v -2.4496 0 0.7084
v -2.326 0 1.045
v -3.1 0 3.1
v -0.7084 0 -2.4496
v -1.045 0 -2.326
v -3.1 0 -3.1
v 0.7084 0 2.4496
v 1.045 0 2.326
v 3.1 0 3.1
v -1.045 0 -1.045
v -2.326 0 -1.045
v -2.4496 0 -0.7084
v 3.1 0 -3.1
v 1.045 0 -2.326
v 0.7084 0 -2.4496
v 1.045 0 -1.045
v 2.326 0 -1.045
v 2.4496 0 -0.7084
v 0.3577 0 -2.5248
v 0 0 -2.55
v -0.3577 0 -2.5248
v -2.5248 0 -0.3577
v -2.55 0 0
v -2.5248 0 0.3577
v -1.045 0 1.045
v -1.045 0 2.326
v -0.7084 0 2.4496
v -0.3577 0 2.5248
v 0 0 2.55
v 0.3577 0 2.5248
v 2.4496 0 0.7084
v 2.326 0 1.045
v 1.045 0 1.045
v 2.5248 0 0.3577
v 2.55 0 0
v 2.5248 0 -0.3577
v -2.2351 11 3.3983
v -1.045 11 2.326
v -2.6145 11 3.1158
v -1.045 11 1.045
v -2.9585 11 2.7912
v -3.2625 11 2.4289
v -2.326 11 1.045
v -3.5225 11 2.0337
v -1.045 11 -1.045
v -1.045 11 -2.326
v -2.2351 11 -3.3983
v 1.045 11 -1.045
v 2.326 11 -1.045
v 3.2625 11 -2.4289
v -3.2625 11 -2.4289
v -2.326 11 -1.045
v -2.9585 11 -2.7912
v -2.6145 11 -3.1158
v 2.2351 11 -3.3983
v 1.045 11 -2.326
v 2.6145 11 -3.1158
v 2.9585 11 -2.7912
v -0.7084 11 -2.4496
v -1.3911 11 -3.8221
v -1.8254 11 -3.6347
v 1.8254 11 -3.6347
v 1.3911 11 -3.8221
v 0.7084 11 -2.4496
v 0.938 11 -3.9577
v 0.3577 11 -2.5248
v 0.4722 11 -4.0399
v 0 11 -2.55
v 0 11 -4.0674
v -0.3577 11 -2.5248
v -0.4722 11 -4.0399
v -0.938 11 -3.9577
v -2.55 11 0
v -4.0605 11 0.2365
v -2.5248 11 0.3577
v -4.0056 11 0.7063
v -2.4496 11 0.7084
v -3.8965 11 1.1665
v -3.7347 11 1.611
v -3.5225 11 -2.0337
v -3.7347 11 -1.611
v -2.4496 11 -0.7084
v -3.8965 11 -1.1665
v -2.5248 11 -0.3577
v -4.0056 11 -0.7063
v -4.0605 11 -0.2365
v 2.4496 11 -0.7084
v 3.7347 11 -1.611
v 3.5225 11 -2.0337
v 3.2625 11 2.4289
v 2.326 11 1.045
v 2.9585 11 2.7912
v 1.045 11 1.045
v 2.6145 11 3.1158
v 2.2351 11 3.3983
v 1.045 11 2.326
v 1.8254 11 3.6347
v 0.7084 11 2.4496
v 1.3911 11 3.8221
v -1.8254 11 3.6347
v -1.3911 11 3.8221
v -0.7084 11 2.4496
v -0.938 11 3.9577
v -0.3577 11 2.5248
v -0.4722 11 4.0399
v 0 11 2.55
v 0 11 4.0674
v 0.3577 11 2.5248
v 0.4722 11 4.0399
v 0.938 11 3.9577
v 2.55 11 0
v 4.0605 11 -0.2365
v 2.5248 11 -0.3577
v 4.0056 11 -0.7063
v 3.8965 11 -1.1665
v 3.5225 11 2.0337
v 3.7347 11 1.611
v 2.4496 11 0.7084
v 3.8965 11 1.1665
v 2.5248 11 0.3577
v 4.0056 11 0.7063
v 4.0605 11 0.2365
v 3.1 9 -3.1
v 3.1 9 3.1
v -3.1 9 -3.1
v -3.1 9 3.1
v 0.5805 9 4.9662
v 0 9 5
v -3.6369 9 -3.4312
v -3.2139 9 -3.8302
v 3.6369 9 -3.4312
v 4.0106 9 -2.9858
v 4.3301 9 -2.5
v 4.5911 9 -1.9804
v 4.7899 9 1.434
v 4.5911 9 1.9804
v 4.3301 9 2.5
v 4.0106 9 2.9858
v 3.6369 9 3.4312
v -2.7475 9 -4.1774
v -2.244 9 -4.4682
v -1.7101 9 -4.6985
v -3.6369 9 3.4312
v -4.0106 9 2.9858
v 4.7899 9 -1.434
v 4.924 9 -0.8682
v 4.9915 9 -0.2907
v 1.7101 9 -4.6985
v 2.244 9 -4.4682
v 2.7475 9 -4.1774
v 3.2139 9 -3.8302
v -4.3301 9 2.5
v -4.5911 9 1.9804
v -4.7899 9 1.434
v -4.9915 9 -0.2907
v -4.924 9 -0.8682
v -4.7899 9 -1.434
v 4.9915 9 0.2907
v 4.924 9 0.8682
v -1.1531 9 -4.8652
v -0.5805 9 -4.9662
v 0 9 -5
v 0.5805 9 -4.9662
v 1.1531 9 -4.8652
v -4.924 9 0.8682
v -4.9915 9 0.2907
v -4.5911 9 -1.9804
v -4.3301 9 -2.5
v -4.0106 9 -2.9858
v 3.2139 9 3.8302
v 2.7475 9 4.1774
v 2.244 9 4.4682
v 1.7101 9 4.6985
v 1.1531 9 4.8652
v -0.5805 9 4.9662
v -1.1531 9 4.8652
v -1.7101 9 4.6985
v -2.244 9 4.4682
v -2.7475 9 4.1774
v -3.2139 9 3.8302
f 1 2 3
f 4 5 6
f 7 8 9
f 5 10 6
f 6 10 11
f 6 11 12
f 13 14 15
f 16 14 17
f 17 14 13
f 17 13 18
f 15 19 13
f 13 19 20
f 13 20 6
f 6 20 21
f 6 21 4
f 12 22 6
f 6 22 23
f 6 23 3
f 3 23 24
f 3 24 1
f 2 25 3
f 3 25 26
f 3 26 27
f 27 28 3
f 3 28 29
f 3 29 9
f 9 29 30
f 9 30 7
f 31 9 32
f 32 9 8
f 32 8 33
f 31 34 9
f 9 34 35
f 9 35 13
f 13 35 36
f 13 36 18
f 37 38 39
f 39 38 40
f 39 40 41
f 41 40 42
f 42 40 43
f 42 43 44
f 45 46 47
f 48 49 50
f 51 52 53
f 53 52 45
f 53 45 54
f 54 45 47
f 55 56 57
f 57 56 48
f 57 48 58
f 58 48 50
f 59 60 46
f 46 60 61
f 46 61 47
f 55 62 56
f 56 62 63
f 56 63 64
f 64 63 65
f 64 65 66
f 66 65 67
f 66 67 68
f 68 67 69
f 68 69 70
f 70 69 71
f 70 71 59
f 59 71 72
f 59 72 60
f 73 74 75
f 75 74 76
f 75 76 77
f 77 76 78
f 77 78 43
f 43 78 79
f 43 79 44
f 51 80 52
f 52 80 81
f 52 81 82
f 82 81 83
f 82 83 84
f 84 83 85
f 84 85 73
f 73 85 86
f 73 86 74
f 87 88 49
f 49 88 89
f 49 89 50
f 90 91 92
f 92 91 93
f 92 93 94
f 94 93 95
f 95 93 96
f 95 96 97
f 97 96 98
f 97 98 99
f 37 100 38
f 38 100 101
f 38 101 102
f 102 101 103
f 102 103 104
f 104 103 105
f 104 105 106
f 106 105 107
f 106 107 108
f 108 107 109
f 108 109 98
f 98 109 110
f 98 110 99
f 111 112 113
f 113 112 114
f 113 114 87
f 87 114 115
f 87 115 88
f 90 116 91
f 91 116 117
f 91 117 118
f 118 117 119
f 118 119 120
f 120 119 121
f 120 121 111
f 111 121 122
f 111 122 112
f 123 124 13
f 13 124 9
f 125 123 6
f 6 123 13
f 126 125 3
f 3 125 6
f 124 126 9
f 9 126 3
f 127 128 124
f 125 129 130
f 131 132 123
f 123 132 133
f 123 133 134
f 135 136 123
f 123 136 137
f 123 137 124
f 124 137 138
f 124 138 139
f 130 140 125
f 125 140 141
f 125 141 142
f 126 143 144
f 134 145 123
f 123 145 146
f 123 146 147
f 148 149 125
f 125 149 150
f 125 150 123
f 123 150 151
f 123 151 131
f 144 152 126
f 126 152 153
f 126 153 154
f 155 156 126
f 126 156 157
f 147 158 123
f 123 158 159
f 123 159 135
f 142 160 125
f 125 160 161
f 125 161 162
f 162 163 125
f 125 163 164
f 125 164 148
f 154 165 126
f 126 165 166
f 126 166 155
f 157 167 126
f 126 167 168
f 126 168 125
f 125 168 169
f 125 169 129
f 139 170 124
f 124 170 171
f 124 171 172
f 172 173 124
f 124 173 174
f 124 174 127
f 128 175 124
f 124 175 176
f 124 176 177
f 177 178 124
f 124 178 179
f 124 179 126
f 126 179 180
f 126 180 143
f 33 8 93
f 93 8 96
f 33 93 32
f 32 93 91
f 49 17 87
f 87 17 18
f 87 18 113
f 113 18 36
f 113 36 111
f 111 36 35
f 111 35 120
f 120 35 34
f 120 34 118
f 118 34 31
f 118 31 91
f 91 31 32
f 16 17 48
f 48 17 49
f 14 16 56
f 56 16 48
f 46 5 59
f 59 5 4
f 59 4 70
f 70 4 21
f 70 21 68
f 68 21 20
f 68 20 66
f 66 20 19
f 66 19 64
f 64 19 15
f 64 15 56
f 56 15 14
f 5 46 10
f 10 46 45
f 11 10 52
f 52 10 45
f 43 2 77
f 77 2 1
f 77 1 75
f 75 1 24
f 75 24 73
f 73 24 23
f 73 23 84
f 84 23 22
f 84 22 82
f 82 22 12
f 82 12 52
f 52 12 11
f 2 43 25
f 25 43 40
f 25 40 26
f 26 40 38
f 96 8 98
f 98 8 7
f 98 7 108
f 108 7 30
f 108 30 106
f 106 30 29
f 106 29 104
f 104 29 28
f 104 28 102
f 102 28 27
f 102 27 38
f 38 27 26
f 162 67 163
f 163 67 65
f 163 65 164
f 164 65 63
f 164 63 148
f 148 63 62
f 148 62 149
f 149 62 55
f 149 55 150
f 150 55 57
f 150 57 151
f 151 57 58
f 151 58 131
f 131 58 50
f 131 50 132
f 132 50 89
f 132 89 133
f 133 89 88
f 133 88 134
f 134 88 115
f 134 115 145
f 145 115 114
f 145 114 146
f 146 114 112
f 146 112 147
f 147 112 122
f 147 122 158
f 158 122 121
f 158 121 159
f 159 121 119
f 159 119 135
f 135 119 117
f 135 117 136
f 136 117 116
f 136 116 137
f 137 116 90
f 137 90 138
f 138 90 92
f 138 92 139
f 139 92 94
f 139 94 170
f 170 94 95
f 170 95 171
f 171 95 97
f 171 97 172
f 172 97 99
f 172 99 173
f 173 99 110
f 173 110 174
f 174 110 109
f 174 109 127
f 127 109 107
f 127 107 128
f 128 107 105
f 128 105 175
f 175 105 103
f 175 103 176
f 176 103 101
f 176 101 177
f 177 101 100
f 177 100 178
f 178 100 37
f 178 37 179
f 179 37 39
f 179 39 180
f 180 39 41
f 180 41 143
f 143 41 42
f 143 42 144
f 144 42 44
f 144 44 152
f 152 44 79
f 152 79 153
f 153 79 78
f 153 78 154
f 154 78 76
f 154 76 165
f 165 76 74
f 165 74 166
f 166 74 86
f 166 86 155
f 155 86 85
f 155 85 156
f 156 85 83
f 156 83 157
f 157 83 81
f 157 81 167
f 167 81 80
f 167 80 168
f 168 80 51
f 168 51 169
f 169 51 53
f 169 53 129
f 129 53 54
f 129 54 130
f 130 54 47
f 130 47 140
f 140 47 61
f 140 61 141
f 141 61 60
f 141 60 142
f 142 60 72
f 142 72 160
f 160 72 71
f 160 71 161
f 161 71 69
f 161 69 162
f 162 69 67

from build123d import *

# Parameters (mm, degrees)
SKETCH1_W           = 6.2
SKETCH1_H           = 6.2
BOSS_EXTRUDE1_DEPTH = 9
SKETCH2_R           = 5
BOSS_EXTRUDE2_DEPTH = 2
CUT_EXTRUDE1_REACH  = 15.077
CHAMFER1_SIZE       = 2
CHAMFER1_SIZE_2     = 0.932615316


with BuildPart() as part:
    # Sketch1 → Boss-Extrude1 (new body)
    with BuildSketch(Plane(origin=(0, 0, 0), x_dir=(1, 0, 0), z_dir=(0, 1, 0))):
        Rectangle(SKETCH1_W, SKETCH1_H)
    extrude(amount=BOSS_EXTRUDE1_DEPTH)

    # Sketch2 → Boss-Extrude2 (add)
    with BuildSketch(Plane(origin=(0, 9, 0), x_dir=(1, 0, 0), z_dir=(0, 1, 0))):
        with Locations(Location((0, 0, 0), (0, 0, 270))):
            Circle(SKETCH2_R)
    extrude(amount=BOSS_EXTRUDE2_DEPTH)

    # Sketch3 → Cut-Extrude1 (cut, up to next)
    with BuildSketch(Plane(origin=(0, 0, 0), x_dir=(-1, 0, 0), z_dir=(0, -1, 0)), mode=Mode.PRIVATE) as cut_extrude1_sk1:
        with BuildLine():
            ThreePointArc((-1.045, -2.326042777), (0, -2.55), (1.045, -2.326042777))
            Line((1.045, -2.326042777), (1.045, -1.045))
            Line((1.045, -1.045), (-1.045, -1.045))
            Line((-1.045, -1.045), (-1.045, -2.326042777))
        make_face()
    cut_extrude1_tool1 = extrude(cut_extrude1_sk1.sketch, amount=-CUT_EXTRUDE1_REACH, mode=Mode.PRIVATE) & part.part
    # Sketch3 → Cut-Extrude1 (cut, up to next)
    with BuildSketch(Plane(origin=(0, 0, 0), x_dir=(-1, 0, 0), z_dir=(0, -1, 0)), mode=Mode.PRIVATE) as cut_extrude1_sk2:
        with BuildLine():
            Line((1.045, 1.045), (1.045, -1.045))
            Line((1.045, -1.045), (2.326042777, -1.045))
            ThreePointArc((2.326042777, -1.045), (2.493382149, -0.534364538), (2.55, 0))
            ThreePointArc((2.55, 0), (2.493382149, 0.534364538), (2.326042777, 1.045))
            Line((2.326042777, 1.045), (1.045, 1.045))
        make_face()
    cut_extrude1_tool2 = extrude(cut_extrude1_sk2.sketch, amount=-CUT_EXTRUDE1_REACH, mode=Mode.PRIVATE) & part.part
    # Sketch3 → Cut-Extrude1 (cut, up to next)
    with BuildSketch(Plane(origin=(0, 0, 0), x_dir=(-1, 0, 0), z_dir=(0, -1, 0)), mode=Mode.PRIVATE) as cut_extrude1_sk3:
        Polygon((-1.045, -1.045), (1.045, -1.045), (1.045, 1.045), align=None)
    cut_extrude1_tool3 = extrude(cut_extrude1_sk3.sketch, amount=-CUT_EXTRUDE1_REACH, mode=Mode.PRIVATE) & part.part
    # Sketch3 → Cut-Extrude1 (cut, up to next)
    with BuildSketch(Plane(origin=(0, 0, 0), x_dir=(-1, 0, 0), z_dir=(0, -1, 0)), mode=Mode.PRIVATE) as cut_extrude1_sk4:
        Polygon((-1.045, -1.045), (1.045, 1.045), (-1.045, 1.045), align=None)
    cut_extrude1_tool4 = extrude(cut_extrude1_sk4.sketch, amount=-CUT_EXTRUDE1_REACH, mode=Mode.PRIVATE) & part.part
    # Sketch3 → Cut-Extrude1 (cut, up to next)
    with BuildSketch(Plane(origin=(0, 0, 0), x_dir=(-1, 0, 0), z_dir=(0, -1, 0)), mode=Mode.PRIVATE) as cut_extrude1_sk5:
        with BuildLine():
            Line((-2.326042777, -1.045), (-1.045, -1.045))
            Line((-1.045, -1.045), (-1.045, 1.045))
            Line((-1.045, 1.045), (-2.326042777, 1.045))
            ThreePointArc((-2.326042777, 1.045), (-2.55, 0), (-2.326042777, -1.045))
        make_face()
    cut_extrude1_tool5 = extrude(cut_extrude1_sk5.sketch, amount=-CUT_EXTRUDE1_REACH, mode=Mode.PRIVATE) & part.part
    # Sketch3 → Cut-Extrude1 (cut, up to next)
    with BuildSketch(Plane(origin=(0, 0, 0), x_dir=(-1, 0, 0), z_dir=(0, -1, 0)), mode=Mode.PRIVATE) as cut_extrude1_sk6:
        with BuildLine():
            Line((-1.045, 1.045), (1.045, 1.045))
            Line((1.045, 1.045), (1.045, 2.326042777))
            ThreePointArc((1.045, 2.326042777), (0, 2.55), (-1.045, 2.326042777))
            Line((-1.045, 2.326042777), (-1.045, 1.045))
        make_face()
    cut_extrude1_tool6 = extrude(cut_extrude1_sk6.sketch, amount=-CUT_EXTRUDE1_REACH, mode=Mode.PRIVATE) & part.part
    add(cut_extrude1_tool1.solids().sort_by_distance((0, 0, 1.762391))[0], mode=Mode.SUBTRACT)
    add(cut_extrude1_tool2.solids().sort_by_distance((-1.762391, 0, 0))[0], mode=Mode.SUBTRACT)
    add(cut_extrude1_tool3.solids().sort_by_distance((-0.348333, 0, 0.348333))[0], mode=Mode.SUBTRACT)
    add(cut_extrude1_tool4.solids().sort_by_distance((0.348333, 0, -0.348333))[0], mode=Mode.SUBTRACT)
    add(cut_extrude1_tool5.solids().sort_by_distance((1.762391, 0, 0))[0], mode=Mode.SUBTRACT)
    add(cut_extrude1_tool6.solids().sort_by_distance((0, 0, -1.762391))[0], mode=Mode.SUBTRACT)

    # Chamfer1
    # the kernel refuses this chamfer: 2, 0.932615316 mm, written as the material it takes off along each edge
    with BuildSketch(Plane(origin=(0, 11, 0), x_dir=(0, 0, 1), z_dir=(-1, 0, 0))) as chamfer1_piece_1:
        Polygon((5, -CHAMFER1_SIZE), (5 - CHAMFER1_SIZE_2, 0), (5, 0), align=None)
    revolve(axis=Axis((0, 11, 0), (0, 1, 0)), mode=Mode.SUBTRACT)


solid = part.part
